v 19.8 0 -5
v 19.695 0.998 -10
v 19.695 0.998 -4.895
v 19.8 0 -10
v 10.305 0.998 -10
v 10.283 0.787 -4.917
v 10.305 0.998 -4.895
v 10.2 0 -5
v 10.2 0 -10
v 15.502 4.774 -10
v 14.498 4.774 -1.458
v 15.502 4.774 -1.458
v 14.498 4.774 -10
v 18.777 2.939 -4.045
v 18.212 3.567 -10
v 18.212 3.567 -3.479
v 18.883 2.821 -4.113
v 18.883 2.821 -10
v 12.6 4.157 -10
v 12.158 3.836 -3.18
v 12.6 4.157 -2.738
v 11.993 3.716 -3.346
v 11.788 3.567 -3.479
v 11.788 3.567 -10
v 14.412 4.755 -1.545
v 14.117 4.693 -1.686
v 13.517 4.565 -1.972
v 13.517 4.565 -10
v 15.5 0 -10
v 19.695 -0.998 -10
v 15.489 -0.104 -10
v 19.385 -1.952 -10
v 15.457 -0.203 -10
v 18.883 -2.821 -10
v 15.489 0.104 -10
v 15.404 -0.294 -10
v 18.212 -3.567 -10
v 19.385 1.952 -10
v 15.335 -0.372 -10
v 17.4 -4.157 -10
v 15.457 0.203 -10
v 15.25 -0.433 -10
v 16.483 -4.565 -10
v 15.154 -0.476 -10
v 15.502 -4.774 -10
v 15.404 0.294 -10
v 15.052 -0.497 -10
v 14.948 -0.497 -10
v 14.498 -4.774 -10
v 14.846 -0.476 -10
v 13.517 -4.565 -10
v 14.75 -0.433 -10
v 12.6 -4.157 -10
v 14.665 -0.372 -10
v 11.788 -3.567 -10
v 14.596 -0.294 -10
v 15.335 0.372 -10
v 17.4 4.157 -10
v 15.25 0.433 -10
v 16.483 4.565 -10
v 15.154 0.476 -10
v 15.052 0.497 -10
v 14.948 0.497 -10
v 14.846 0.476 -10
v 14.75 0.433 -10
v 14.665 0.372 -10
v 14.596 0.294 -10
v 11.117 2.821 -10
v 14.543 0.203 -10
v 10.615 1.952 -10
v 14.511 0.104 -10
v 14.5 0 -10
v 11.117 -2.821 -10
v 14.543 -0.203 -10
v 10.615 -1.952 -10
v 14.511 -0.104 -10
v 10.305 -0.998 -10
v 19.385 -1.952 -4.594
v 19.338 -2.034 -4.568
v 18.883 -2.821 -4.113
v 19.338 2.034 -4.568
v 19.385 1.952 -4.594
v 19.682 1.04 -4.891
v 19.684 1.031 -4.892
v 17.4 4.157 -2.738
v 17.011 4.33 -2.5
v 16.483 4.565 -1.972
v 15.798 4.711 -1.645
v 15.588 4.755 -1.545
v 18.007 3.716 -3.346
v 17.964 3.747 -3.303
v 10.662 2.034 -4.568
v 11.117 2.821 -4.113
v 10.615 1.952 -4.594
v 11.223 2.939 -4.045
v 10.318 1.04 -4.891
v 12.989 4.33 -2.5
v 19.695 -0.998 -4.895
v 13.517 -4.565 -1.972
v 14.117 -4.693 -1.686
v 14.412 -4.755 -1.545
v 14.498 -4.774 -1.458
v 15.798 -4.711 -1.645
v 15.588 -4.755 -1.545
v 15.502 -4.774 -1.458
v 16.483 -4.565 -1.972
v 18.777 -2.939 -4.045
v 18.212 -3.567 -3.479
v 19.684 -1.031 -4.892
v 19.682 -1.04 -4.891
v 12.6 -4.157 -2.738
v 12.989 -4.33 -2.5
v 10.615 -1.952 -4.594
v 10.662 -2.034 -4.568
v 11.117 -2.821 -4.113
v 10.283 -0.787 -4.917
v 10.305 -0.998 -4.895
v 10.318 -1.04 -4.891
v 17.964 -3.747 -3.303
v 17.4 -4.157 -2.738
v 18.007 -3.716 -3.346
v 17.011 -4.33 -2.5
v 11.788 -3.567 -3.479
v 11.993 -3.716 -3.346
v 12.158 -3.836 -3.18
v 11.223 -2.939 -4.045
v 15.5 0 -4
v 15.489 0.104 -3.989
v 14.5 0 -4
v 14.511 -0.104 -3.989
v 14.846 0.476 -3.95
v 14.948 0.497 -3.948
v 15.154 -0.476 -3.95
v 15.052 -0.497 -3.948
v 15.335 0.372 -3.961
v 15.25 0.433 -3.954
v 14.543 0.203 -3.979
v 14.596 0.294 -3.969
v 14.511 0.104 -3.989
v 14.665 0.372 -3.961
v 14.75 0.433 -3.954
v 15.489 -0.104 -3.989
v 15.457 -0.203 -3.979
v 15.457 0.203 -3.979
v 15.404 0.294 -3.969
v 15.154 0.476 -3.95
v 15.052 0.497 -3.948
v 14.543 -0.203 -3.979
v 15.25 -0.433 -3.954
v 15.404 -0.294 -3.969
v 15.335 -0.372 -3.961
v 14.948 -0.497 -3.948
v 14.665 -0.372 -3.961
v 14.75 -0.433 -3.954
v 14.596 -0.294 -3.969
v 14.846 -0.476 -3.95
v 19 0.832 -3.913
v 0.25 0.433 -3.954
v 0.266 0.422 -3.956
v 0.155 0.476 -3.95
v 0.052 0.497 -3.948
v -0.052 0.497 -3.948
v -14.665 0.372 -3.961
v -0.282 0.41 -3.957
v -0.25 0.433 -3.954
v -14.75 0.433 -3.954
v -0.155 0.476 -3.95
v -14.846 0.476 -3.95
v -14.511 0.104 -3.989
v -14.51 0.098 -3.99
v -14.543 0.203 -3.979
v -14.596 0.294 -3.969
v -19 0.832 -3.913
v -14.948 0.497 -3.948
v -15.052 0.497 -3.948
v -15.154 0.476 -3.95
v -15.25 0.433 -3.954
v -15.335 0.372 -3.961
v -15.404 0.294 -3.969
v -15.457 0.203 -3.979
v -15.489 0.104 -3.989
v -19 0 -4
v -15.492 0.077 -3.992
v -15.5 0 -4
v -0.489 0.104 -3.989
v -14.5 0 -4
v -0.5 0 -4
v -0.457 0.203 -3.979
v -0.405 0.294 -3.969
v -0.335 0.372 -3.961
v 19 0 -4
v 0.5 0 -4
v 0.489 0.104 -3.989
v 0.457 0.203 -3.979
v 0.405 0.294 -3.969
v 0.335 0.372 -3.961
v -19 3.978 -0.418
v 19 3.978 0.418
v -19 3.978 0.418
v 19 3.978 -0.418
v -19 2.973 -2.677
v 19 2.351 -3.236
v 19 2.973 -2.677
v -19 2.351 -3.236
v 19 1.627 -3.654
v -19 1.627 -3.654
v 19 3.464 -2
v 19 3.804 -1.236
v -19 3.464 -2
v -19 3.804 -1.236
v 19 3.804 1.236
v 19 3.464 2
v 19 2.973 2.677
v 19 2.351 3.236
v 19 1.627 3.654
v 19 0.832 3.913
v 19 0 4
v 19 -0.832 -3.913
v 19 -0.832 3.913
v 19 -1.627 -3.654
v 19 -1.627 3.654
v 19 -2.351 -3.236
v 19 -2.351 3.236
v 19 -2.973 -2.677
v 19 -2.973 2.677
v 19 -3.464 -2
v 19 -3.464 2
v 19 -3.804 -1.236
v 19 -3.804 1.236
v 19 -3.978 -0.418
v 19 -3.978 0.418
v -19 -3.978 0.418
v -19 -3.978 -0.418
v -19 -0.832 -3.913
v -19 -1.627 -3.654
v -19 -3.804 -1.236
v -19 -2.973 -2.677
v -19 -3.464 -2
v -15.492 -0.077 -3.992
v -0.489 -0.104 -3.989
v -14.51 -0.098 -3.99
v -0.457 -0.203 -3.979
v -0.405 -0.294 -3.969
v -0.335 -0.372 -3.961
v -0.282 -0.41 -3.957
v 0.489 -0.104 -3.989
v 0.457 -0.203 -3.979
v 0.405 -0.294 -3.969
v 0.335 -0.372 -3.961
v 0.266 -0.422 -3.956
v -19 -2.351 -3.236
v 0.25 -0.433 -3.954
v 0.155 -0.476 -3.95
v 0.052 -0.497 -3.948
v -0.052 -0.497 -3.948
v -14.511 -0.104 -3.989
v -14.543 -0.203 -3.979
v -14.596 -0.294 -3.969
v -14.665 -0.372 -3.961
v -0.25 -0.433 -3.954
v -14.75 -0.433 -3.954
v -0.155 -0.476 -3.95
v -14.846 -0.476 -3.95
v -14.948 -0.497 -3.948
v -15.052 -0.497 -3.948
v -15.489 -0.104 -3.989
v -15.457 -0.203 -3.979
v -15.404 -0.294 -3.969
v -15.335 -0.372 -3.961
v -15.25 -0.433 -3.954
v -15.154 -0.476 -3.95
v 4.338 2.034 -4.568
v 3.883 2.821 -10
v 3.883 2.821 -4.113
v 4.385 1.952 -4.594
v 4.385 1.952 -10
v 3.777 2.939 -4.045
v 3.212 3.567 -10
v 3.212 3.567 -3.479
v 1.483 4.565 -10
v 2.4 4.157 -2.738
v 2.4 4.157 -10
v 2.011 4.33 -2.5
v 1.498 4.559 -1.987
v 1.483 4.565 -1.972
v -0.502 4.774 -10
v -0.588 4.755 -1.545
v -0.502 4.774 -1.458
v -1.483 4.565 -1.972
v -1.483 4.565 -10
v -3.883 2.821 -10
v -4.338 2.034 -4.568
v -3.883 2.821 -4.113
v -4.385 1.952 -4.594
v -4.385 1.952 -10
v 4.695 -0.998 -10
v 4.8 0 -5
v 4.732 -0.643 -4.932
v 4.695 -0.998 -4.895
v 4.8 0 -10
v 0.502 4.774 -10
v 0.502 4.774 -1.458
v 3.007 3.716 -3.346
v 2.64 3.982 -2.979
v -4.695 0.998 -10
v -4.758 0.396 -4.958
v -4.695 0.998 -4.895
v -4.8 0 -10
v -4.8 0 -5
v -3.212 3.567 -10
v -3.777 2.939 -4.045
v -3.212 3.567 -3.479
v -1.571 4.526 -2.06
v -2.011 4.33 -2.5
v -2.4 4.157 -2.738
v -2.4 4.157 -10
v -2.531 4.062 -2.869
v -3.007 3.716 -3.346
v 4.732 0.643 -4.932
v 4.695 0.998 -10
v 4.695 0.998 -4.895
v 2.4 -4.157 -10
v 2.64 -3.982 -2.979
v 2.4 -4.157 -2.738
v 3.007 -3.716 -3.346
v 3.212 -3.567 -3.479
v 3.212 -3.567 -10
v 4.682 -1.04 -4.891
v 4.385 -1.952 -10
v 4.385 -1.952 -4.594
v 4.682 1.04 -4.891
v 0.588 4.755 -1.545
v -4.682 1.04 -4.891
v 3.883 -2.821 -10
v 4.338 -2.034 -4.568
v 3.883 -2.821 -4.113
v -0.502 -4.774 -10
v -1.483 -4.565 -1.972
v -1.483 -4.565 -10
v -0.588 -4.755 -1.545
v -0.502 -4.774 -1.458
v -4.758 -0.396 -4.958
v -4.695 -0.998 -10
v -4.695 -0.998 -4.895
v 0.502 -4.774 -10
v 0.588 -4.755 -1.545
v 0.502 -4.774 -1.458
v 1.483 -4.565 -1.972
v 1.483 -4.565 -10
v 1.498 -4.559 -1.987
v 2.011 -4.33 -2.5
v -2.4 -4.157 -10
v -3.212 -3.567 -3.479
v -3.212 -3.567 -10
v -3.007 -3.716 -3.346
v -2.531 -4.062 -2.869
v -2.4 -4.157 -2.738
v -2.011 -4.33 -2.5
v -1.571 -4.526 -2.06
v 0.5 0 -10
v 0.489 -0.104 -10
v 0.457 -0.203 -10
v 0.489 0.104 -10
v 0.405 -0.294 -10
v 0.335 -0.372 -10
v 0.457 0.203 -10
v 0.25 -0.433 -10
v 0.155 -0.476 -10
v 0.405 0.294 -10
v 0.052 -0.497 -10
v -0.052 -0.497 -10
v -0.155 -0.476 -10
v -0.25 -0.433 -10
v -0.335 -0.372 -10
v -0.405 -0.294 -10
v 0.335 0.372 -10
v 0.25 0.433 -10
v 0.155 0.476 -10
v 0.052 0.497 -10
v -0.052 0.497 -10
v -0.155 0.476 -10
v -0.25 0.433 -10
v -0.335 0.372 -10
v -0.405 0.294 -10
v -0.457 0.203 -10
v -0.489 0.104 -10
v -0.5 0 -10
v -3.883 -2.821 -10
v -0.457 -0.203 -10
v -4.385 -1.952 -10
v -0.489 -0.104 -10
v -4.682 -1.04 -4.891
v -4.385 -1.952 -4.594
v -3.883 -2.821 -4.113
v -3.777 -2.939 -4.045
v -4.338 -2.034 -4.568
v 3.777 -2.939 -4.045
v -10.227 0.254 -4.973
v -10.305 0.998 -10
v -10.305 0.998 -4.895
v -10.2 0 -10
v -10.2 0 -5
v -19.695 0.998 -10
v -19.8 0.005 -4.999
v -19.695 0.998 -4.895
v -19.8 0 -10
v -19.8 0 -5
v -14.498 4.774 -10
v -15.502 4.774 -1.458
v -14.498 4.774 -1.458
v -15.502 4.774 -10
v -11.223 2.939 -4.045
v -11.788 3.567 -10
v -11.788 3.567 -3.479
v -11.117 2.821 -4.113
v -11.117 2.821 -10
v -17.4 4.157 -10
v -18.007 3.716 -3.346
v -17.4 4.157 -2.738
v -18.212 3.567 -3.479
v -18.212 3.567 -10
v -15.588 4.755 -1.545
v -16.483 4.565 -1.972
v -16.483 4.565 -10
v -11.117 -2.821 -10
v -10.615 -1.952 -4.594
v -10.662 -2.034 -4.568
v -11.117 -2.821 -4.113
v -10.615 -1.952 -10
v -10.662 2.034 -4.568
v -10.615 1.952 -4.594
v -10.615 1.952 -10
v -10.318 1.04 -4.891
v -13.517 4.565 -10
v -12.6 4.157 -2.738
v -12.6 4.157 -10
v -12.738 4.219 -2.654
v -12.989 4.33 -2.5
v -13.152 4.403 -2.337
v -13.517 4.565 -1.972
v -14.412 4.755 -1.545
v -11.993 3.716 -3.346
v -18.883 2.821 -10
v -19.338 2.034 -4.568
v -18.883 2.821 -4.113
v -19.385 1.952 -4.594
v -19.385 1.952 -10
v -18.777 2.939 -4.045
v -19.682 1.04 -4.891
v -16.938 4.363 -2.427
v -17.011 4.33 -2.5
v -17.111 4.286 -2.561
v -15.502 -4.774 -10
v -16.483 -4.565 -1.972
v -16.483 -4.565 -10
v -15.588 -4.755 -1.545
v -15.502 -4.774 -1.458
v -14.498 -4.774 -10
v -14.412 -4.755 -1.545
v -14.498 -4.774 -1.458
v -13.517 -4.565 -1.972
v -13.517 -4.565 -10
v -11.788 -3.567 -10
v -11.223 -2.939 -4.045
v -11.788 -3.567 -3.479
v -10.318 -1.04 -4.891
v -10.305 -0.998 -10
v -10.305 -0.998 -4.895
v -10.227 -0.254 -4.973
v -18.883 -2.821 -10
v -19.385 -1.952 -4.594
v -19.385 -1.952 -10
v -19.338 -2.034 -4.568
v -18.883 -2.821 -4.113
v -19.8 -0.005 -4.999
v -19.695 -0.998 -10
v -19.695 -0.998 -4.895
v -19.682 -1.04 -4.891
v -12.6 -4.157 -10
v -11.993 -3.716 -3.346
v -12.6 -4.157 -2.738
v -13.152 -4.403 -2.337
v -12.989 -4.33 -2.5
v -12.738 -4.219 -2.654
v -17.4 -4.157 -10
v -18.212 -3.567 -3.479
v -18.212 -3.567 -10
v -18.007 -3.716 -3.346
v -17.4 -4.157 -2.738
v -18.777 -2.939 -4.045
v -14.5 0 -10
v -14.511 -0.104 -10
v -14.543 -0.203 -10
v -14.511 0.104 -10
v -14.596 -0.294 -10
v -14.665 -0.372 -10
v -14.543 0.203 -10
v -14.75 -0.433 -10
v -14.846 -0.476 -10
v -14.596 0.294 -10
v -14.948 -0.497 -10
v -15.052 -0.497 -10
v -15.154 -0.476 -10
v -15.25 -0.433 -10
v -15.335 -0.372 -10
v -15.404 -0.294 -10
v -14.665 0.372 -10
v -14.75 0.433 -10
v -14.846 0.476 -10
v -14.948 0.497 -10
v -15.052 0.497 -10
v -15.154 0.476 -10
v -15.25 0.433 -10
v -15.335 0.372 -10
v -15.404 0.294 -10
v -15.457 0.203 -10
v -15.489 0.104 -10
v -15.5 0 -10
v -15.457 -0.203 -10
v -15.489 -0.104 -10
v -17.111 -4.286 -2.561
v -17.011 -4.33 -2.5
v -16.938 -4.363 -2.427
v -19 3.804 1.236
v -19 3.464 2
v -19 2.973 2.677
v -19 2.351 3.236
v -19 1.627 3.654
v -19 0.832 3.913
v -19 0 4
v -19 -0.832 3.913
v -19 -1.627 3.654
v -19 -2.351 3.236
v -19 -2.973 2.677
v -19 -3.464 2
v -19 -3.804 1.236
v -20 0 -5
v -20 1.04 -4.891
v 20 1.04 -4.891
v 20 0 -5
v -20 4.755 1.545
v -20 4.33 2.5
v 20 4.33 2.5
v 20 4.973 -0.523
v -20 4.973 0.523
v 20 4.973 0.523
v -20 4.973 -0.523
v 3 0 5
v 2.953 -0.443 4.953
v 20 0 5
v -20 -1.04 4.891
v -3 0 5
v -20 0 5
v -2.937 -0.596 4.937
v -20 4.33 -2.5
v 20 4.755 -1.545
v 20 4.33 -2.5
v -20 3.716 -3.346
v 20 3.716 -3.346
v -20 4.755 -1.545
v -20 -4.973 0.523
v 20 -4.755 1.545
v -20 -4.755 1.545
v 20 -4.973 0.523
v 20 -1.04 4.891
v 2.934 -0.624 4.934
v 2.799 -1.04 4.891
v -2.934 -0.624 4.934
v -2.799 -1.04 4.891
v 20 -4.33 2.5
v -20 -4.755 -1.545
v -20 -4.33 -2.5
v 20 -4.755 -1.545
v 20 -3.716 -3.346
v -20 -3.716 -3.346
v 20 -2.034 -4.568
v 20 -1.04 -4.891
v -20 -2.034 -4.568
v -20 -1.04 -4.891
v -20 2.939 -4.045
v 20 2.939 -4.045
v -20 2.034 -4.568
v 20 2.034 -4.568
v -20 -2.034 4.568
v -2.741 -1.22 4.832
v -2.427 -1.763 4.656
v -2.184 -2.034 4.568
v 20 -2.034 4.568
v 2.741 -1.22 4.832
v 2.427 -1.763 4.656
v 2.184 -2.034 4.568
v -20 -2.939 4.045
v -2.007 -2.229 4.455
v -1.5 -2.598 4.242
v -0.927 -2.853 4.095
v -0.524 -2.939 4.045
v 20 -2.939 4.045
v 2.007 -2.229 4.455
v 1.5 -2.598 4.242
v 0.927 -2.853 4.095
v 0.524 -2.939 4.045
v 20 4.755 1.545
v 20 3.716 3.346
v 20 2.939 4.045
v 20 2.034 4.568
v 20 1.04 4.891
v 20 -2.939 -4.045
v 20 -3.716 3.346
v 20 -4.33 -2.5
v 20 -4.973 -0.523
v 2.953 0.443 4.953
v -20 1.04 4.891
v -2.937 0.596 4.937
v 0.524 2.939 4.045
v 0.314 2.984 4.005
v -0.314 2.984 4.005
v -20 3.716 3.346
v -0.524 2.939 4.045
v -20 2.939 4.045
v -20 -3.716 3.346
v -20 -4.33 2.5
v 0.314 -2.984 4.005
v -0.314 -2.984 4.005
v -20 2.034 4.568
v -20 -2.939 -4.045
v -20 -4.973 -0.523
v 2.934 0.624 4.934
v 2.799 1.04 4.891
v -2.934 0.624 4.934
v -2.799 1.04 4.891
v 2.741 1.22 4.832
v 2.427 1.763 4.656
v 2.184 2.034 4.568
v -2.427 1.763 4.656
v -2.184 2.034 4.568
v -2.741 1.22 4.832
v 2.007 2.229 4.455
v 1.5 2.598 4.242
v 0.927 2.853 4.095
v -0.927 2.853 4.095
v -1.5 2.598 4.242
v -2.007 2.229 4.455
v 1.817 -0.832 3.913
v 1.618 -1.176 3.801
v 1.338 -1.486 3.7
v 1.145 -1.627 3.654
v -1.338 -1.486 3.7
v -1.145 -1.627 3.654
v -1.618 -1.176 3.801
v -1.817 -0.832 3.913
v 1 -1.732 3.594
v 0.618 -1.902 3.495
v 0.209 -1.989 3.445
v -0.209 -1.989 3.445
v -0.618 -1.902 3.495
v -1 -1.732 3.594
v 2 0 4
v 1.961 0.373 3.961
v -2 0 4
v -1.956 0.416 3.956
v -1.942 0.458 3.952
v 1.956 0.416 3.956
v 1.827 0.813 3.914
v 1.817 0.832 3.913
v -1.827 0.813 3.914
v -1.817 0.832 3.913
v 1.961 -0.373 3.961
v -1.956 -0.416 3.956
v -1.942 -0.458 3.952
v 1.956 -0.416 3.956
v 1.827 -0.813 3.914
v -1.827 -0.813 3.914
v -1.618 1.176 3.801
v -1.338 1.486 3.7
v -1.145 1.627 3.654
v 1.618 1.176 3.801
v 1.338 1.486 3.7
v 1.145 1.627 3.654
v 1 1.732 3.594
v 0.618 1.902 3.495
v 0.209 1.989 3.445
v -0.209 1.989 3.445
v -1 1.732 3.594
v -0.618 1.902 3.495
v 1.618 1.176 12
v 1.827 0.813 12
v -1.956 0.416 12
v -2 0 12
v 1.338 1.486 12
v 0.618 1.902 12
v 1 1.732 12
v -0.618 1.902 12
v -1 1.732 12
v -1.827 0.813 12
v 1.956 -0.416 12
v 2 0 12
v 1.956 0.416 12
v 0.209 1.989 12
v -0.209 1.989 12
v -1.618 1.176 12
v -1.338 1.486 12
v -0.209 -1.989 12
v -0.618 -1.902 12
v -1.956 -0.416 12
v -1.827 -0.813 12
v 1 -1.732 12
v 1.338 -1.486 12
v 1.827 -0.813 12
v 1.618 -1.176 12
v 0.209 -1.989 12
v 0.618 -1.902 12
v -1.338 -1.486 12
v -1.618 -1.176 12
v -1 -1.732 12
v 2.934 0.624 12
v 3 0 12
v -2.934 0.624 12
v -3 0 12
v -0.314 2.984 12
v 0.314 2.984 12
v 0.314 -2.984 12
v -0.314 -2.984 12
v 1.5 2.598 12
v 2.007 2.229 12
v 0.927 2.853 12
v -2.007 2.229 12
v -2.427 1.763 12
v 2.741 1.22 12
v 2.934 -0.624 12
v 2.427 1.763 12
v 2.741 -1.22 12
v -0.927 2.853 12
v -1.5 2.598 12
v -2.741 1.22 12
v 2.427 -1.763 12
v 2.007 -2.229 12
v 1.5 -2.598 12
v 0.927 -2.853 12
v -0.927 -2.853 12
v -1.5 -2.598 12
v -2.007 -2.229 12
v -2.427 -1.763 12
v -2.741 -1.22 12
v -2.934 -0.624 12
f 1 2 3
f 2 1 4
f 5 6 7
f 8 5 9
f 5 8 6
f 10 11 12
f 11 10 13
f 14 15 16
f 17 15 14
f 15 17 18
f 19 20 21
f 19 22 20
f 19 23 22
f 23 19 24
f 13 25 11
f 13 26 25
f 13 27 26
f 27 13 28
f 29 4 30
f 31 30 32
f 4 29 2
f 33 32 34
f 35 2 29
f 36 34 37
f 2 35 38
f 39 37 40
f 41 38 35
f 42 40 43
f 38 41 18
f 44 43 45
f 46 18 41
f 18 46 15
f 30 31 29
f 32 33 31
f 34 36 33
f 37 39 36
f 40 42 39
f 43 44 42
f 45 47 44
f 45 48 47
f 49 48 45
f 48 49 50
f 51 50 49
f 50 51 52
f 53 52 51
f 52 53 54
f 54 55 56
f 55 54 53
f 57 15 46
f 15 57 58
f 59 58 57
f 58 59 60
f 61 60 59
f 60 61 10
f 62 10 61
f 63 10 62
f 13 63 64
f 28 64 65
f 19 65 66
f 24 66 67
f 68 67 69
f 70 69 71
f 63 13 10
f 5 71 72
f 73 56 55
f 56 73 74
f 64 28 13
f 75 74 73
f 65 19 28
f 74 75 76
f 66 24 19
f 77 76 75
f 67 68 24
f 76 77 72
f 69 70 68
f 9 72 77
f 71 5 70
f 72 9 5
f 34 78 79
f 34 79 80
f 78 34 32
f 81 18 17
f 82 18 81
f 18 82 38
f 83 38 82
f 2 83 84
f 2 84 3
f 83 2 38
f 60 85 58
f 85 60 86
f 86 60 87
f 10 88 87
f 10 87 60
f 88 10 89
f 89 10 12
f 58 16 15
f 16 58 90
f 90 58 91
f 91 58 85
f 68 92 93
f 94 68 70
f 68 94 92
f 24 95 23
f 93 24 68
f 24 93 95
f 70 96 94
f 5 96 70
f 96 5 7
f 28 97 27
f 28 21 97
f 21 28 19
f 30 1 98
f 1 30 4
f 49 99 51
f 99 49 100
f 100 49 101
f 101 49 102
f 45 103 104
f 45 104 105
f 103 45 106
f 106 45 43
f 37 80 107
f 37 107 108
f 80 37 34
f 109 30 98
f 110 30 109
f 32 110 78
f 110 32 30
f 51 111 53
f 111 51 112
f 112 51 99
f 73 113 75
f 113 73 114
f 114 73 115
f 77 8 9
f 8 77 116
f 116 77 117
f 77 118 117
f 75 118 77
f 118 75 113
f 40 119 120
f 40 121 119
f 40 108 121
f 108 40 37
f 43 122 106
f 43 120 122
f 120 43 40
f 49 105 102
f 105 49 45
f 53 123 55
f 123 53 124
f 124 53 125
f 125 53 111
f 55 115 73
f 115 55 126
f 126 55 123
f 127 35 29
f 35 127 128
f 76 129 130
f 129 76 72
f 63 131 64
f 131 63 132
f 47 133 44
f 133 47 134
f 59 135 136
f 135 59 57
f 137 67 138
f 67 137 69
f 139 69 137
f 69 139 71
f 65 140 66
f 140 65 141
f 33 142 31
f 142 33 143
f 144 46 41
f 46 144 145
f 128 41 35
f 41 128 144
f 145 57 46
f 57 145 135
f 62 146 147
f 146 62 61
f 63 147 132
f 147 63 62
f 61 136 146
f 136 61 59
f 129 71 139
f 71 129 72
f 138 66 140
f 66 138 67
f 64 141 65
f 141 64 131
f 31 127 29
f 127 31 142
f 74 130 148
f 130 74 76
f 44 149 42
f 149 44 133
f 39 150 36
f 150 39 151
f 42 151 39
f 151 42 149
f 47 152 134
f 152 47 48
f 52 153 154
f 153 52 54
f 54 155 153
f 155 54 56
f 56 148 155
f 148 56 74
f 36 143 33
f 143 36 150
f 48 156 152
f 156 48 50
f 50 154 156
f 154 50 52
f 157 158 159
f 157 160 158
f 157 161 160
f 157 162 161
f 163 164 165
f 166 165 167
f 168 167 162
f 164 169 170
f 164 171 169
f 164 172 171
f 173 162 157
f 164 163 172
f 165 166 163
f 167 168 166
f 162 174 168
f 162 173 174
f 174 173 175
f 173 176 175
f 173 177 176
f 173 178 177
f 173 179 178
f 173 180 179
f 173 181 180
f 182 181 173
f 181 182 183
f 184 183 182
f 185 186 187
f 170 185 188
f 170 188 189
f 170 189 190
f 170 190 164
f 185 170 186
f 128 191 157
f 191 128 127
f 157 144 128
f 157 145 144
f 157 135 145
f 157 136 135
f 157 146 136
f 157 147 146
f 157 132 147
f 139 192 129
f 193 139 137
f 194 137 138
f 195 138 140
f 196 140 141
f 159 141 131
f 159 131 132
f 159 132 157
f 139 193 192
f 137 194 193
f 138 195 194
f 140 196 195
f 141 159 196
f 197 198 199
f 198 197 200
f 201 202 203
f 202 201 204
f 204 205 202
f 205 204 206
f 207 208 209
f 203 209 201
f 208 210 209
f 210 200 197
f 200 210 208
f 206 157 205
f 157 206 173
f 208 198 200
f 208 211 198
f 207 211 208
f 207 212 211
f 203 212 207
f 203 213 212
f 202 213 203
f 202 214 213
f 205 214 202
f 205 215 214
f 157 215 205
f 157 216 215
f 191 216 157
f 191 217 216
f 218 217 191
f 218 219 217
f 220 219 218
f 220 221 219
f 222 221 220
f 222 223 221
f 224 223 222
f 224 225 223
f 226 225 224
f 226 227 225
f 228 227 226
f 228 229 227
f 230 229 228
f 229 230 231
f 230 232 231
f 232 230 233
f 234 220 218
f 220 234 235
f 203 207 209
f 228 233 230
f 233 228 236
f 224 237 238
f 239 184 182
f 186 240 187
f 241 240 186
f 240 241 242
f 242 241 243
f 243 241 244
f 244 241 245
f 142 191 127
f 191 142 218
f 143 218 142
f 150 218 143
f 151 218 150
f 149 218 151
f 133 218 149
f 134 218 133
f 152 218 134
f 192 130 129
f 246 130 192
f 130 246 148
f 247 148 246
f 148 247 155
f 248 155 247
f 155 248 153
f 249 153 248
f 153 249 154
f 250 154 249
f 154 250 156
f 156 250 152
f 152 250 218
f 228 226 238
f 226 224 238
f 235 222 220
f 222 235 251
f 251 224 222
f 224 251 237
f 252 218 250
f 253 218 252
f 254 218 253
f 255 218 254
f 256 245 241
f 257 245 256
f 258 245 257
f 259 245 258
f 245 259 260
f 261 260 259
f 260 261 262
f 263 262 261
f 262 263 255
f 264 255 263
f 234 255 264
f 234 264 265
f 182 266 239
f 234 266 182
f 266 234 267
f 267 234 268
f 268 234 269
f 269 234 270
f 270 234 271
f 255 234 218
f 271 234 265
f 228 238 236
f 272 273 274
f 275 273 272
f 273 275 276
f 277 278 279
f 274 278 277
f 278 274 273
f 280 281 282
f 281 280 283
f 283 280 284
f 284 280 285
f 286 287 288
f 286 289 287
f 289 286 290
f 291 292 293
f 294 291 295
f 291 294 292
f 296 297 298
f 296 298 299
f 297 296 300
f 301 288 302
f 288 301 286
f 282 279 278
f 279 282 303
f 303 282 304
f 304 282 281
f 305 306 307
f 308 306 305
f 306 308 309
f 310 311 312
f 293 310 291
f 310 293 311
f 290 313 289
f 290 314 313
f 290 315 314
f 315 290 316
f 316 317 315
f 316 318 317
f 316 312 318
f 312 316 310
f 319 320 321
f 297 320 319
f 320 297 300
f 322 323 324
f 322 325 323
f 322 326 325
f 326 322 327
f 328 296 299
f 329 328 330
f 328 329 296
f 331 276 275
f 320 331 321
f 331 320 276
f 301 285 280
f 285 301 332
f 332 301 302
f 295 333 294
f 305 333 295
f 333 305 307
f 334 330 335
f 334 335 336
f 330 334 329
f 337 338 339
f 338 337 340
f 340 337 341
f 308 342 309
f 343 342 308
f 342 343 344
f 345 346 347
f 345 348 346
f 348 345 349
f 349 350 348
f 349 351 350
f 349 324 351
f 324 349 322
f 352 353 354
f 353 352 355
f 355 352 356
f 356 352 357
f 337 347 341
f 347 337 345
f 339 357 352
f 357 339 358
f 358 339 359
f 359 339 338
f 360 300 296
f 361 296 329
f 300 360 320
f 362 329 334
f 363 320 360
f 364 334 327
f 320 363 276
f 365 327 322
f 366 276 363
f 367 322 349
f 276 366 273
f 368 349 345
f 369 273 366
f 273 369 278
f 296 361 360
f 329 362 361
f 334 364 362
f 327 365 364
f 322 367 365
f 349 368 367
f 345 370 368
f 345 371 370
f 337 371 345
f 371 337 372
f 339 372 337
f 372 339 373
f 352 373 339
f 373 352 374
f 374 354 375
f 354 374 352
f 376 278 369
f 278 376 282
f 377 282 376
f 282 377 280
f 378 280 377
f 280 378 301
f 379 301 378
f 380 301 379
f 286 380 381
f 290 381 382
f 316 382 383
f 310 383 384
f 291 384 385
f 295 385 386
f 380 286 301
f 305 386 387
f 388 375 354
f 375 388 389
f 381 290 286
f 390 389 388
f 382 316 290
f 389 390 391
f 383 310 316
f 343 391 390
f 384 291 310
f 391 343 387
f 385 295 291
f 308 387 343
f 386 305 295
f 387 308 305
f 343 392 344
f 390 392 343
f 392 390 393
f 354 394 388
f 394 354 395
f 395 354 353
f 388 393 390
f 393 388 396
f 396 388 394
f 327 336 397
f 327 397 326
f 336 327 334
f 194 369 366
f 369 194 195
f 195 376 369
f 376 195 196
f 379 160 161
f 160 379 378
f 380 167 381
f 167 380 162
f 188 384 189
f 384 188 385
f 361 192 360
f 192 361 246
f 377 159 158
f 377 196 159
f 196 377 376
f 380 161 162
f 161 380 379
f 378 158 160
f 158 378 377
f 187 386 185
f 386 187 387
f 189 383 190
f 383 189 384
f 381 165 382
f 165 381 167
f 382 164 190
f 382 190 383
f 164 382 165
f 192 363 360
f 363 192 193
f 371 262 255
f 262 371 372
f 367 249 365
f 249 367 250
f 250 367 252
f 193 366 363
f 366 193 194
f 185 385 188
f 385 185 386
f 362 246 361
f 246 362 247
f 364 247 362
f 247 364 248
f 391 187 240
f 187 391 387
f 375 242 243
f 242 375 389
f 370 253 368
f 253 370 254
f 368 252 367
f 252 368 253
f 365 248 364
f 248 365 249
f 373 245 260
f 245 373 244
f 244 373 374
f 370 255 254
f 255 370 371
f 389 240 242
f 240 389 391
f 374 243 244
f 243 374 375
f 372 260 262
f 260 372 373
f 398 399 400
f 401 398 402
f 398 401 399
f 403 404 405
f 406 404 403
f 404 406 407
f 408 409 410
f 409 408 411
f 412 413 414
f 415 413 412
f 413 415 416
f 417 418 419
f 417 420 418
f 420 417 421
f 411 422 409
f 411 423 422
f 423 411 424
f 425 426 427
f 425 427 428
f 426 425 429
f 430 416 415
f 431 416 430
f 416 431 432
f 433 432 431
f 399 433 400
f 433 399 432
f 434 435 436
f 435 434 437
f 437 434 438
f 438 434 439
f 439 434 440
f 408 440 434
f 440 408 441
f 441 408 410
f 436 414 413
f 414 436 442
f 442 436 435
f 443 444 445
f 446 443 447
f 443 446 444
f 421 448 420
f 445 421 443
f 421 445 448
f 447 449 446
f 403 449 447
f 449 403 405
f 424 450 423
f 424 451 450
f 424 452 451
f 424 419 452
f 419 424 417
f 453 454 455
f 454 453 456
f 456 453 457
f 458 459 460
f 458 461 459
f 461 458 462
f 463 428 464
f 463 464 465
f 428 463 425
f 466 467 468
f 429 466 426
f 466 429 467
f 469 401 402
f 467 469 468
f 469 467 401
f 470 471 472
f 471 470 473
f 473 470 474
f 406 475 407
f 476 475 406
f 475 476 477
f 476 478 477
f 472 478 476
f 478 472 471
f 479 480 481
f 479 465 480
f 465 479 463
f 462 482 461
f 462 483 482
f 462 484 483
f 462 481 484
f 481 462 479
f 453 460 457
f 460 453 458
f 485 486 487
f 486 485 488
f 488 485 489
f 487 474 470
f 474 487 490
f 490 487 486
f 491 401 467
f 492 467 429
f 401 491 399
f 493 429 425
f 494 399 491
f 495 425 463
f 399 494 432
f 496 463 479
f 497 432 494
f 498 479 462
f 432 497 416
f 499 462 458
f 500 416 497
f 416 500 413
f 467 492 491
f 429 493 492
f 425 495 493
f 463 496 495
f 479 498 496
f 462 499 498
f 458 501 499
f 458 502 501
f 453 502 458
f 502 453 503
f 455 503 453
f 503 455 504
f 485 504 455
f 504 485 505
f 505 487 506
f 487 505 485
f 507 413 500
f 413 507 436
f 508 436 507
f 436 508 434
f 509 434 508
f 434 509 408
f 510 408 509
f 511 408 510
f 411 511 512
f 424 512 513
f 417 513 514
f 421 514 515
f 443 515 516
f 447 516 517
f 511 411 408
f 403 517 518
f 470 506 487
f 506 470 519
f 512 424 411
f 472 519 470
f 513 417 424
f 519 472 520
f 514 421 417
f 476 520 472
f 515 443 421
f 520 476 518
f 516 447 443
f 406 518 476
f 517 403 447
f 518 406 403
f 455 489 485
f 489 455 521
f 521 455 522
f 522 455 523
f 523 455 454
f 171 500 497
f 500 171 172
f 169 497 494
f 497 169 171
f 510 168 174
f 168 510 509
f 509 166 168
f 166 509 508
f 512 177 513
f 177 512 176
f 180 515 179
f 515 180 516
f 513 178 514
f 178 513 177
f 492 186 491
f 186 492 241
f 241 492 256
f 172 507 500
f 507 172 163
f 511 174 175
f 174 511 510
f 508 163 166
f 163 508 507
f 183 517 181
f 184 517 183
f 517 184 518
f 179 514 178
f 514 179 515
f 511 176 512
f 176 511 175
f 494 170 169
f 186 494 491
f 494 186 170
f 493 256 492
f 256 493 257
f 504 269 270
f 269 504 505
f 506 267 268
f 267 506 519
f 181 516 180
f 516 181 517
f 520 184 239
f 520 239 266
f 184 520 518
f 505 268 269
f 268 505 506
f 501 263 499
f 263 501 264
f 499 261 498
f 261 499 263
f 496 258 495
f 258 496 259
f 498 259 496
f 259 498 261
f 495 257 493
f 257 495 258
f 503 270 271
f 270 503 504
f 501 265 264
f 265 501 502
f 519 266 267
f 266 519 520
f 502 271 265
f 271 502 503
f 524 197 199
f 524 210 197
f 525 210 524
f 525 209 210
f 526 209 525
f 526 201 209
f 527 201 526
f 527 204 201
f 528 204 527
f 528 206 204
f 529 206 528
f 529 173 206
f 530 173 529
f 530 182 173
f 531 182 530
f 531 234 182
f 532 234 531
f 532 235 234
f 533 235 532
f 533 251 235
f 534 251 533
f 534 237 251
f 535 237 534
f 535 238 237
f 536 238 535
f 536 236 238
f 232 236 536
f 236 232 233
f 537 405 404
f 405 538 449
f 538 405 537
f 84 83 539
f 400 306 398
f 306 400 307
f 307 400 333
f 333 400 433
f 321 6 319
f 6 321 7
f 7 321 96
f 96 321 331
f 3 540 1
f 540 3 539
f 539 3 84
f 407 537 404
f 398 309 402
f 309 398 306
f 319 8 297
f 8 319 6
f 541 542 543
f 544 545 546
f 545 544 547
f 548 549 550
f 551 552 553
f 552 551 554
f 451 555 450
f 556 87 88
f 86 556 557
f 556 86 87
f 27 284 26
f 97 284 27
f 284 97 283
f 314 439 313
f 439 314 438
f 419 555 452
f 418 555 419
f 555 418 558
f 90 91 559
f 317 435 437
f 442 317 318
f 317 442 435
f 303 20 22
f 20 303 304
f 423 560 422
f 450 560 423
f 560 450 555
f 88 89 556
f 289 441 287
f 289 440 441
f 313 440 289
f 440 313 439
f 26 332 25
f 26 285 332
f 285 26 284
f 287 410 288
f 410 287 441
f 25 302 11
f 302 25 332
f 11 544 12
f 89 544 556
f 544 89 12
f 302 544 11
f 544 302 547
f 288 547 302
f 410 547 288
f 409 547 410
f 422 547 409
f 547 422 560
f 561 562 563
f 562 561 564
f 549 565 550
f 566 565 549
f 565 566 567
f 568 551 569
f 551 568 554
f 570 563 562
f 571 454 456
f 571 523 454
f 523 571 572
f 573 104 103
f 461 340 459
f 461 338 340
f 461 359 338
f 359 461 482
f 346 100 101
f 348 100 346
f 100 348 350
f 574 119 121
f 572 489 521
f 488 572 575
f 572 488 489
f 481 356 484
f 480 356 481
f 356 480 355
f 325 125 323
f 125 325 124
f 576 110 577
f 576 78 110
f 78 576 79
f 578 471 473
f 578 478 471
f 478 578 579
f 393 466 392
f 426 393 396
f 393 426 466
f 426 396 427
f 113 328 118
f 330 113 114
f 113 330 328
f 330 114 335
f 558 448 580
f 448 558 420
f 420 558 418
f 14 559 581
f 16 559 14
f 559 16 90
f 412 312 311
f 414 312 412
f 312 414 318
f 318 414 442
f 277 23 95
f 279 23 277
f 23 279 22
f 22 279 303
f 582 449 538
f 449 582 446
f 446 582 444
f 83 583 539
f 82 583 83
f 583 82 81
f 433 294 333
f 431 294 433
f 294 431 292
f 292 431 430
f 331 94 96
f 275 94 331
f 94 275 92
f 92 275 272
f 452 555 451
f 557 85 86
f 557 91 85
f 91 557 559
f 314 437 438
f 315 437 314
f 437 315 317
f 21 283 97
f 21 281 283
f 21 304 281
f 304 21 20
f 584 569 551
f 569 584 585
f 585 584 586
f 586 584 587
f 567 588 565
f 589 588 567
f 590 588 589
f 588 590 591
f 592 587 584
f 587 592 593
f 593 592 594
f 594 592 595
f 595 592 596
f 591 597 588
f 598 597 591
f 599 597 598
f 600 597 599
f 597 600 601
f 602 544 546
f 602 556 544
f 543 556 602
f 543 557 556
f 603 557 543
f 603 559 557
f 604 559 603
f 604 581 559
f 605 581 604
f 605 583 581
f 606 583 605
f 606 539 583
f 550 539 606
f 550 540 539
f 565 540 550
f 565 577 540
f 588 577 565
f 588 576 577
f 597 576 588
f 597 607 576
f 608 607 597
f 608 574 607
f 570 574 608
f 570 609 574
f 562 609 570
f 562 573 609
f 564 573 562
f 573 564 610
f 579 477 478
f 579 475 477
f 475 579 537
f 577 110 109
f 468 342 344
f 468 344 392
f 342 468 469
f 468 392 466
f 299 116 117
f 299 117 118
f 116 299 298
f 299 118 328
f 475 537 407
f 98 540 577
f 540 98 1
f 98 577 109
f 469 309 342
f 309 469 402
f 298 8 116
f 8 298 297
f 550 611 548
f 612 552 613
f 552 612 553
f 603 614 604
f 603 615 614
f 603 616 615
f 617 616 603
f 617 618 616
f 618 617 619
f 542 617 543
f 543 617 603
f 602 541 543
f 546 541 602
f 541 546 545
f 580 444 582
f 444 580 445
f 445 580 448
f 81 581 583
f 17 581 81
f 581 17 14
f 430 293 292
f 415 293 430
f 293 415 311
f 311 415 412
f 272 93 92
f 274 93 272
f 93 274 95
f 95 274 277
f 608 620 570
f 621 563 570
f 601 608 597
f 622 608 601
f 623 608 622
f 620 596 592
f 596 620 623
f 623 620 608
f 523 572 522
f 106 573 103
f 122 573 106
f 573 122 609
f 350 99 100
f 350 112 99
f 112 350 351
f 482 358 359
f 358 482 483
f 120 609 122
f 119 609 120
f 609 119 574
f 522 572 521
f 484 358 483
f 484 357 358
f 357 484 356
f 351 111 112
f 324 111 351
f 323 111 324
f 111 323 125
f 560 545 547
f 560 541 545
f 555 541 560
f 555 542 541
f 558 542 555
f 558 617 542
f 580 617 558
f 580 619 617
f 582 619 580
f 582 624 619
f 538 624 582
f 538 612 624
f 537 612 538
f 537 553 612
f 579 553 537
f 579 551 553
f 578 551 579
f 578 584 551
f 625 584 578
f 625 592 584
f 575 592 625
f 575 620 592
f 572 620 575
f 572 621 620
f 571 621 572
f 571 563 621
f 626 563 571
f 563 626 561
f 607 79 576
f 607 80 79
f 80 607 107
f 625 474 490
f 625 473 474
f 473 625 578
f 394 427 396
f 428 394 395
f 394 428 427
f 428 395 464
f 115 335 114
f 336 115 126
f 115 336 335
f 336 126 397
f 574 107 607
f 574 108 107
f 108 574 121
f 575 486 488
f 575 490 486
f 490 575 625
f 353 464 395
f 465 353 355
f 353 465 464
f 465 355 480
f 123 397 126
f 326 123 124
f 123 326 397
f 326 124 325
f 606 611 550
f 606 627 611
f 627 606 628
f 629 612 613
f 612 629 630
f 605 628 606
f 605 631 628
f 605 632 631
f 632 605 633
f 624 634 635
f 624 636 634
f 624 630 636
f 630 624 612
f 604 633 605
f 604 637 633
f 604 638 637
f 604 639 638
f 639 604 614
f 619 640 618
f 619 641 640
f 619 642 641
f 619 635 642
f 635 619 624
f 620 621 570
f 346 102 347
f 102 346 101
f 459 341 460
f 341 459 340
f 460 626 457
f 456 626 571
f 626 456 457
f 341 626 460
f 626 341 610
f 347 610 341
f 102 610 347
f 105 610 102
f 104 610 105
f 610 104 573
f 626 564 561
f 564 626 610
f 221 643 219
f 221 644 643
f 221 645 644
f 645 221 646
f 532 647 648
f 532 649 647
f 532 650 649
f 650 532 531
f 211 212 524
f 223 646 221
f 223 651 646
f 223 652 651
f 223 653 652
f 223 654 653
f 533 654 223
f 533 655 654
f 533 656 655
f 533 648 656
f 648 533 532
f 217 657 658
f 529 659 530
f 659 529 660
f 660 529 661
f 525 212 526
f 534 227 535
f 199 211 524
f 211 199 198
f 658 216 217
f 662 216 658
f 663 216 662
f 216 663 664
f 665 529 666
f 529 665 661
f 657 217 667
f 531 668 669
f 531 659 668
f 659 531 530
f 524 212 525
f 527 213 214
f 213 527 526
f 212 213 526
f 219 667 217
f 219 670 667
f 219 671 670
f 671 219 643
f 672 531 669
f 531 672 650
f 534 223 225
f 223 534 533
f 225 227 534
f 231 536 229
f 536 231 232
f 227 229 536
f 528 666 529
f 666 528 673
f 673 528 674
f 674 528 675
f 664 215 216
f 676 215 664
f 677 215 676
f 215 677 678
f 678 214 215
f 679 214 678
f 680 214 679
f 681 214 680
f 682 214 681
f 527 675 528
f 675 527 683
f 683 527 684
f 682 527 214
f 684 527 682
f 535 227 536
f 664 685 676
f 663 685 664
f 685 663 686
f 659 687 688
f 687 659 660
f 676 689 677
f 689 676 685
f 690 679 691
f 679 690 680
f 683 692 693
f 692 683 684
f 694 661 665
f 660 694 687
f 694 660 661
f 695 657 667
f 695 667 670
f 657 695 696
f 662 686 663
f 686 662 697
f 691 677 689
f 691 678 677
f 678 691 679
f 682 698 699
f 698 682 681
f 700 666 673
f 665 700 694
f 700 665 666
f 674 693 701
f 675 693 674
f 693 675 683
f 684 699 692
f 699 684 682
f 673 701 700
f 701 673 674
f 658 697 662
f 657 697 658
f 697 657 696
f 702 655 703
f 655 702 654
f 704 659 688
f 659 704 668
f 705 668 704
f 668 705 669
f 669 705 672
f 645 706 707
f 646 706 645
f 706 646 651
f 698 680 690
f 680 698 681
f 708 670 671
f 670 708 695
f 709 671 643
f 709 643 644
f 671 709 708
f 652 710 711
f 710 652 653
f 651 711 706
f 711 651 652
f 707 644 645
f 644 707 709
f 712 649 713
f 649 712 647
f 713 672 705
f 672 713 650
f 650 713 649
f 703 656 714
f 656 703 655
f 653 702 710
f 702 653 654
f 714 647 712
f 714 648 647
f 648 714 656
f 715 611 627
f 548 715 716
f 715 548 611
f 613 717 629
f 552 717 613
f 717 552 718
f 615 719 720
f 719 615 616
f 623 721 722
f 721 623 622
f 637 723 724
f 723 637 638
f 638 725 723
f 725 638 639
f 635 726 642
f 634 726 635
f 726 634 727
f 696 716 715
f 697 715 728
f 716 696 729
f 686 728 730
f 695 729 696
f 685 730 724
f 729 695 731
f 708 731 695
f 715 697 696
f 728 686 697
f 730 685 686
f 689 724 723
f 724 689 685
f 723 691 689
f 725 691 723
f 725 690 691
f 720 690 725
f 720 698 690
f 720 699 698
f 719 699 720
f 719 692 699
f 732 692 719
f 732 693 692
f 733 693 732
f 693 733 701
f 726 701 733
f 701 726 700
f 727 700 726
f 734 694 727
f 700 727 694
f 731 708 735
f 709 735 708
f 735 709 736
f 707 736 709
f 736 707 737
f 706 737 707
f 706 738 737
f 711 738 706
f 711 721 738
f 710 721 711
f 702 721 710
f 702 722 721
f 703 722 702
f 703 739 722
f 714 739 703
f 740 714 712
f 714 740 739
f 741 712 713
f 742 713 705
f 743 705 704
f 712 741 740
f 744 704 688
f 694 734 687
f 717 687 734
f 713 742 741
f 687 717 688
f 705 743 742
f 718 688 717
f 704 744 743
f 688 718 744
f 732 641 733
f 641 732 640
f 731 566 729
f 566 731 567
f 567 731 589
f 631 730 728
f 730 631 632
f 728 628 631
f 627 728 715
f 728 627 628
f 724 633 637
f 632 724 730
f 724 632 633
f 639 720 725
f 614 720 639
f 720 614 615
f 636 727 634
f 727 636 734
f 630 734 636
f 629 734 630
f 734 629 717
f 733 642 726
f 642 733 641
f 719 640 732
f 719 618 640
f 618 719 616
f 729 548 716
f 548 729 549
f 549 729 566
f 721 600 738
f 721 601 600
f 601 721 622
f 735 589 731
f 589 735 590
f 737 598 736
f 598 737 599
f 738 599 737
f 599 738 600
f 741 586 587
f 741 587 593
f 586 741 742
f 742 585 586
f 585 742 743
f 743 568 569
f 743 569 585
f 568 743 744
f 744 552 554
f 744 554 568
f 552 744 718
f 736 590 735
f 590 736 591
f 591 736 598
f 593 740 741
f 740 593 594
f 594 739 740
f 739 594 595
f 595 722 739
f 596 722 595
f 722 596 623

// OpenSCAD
union(){
  difference(){
    translate(v = [0, 0, 0]){
      rotate(a = [0, 90, 0]){
        cylinder($fn = 30, center = true, h = 40, r = 5);
      }
    }
    translate(v = [0, 0, 0]){
      rotate(a = [0, 90, 0]){
        cylinder($fn = 30, center = true, h = 38, r = 4);
      }
    }
    translate(v = [0, 0, 0]){
      rotate(a = [0, 0, 0]){
        cylinder($fn = 30, center = true, h = 10, r = 2);
      }
    }
    translate(v = [0, 0, -5]){
      rotate(a = [0, 0, 0]){
        cylinder($fn = 30, center = true, h = 10, r = 4);
      }
    }
    translate(v = [15, 0, -5]){
      rotate(a = [0, 0, 0]){
        cylinder($fn = 30, center = true, h = 10, r = 4);
      }
    }
    translate(v = [-15, 0, -5]){
      rotate(a = [0, 0, 0]){
        cylinder($fn = 30, center = true, h = 10, r = 4);
      }
    }
  }
  difference(){
    translate(v = [0, 0, 8]){
      rotate(a = [0, 0, 0]){
        cylinder($fn = 30, center = true, h = 8, r = 3);
      }
    }
    translate(v = [0, 0, 8]){
      rotate(a = [0, 0, 0]){
        cylinder($fn = 30, center = true, h = 9, r = 2);
      }
    }
    translate(v = [0, 0, 0]){
      rotate(a = [0, 90, 0]){
        cylinder($fn = 30, center = true, h = 38, r = 4);
      }
    }
  }
  difference(){
    translate(v = [15, 0, -5]){
      rotate(a = [0, 0, 0]){
        cylinder($fn = 30, center = true, h = 10, r = 4.8);
      }
    }
    translate(v = [15, 0, -8]){
      rotate(a = [0, 0, 0]){
        cylinder($fn = 30, center = true, h = 11, r = 0.5);
      }
    }
    translate(v = [0, 0, 0]){
      rotate(a = [0, 90, 0]){
        cylinder($fn = 30, center = true, h = 38, r = 4);
      }
    }
  }
  difference(){
    translate(v = [0, 0, -5]){
      rotate(a = [0, 0, 0]){
        cylinder($fn = 30, center = true, h = 10, r = 4.8);
      }
    }
    translate(v = [0, 0, -8]){
      rotate(a = [0, 0, 0]){
        cylinder($fn = 30, center = true, h = 11, r = 0.5);
      }
    }
    translate(v = [0, 0, 0]){
      rotate(a = [0, 90, 0]){
        cylinder($fn = 30, center = true, h = 38, r = 4);
      }
    }
  }
  difference(){
    translate(v = [-15, 0, -5]){
      rotate(a = [0, 0, 0]){
        cylinder($fn = 30, center = true, h = 10, r = 4.8);
      }
    }
    translate(v = [-15, 0, -8]){
      rotate(a = [0, 0, 0]){
        cylinder($fn = 30, center = true, h = 11, r = 0.5);
      }
    }
    translate(v = [0, 0, 0]){
      rotate(a = [0, 90, 0]){
        cylinder($fn = 30, center = true, h = 38, r = 4);
      }
    }
  }
}
